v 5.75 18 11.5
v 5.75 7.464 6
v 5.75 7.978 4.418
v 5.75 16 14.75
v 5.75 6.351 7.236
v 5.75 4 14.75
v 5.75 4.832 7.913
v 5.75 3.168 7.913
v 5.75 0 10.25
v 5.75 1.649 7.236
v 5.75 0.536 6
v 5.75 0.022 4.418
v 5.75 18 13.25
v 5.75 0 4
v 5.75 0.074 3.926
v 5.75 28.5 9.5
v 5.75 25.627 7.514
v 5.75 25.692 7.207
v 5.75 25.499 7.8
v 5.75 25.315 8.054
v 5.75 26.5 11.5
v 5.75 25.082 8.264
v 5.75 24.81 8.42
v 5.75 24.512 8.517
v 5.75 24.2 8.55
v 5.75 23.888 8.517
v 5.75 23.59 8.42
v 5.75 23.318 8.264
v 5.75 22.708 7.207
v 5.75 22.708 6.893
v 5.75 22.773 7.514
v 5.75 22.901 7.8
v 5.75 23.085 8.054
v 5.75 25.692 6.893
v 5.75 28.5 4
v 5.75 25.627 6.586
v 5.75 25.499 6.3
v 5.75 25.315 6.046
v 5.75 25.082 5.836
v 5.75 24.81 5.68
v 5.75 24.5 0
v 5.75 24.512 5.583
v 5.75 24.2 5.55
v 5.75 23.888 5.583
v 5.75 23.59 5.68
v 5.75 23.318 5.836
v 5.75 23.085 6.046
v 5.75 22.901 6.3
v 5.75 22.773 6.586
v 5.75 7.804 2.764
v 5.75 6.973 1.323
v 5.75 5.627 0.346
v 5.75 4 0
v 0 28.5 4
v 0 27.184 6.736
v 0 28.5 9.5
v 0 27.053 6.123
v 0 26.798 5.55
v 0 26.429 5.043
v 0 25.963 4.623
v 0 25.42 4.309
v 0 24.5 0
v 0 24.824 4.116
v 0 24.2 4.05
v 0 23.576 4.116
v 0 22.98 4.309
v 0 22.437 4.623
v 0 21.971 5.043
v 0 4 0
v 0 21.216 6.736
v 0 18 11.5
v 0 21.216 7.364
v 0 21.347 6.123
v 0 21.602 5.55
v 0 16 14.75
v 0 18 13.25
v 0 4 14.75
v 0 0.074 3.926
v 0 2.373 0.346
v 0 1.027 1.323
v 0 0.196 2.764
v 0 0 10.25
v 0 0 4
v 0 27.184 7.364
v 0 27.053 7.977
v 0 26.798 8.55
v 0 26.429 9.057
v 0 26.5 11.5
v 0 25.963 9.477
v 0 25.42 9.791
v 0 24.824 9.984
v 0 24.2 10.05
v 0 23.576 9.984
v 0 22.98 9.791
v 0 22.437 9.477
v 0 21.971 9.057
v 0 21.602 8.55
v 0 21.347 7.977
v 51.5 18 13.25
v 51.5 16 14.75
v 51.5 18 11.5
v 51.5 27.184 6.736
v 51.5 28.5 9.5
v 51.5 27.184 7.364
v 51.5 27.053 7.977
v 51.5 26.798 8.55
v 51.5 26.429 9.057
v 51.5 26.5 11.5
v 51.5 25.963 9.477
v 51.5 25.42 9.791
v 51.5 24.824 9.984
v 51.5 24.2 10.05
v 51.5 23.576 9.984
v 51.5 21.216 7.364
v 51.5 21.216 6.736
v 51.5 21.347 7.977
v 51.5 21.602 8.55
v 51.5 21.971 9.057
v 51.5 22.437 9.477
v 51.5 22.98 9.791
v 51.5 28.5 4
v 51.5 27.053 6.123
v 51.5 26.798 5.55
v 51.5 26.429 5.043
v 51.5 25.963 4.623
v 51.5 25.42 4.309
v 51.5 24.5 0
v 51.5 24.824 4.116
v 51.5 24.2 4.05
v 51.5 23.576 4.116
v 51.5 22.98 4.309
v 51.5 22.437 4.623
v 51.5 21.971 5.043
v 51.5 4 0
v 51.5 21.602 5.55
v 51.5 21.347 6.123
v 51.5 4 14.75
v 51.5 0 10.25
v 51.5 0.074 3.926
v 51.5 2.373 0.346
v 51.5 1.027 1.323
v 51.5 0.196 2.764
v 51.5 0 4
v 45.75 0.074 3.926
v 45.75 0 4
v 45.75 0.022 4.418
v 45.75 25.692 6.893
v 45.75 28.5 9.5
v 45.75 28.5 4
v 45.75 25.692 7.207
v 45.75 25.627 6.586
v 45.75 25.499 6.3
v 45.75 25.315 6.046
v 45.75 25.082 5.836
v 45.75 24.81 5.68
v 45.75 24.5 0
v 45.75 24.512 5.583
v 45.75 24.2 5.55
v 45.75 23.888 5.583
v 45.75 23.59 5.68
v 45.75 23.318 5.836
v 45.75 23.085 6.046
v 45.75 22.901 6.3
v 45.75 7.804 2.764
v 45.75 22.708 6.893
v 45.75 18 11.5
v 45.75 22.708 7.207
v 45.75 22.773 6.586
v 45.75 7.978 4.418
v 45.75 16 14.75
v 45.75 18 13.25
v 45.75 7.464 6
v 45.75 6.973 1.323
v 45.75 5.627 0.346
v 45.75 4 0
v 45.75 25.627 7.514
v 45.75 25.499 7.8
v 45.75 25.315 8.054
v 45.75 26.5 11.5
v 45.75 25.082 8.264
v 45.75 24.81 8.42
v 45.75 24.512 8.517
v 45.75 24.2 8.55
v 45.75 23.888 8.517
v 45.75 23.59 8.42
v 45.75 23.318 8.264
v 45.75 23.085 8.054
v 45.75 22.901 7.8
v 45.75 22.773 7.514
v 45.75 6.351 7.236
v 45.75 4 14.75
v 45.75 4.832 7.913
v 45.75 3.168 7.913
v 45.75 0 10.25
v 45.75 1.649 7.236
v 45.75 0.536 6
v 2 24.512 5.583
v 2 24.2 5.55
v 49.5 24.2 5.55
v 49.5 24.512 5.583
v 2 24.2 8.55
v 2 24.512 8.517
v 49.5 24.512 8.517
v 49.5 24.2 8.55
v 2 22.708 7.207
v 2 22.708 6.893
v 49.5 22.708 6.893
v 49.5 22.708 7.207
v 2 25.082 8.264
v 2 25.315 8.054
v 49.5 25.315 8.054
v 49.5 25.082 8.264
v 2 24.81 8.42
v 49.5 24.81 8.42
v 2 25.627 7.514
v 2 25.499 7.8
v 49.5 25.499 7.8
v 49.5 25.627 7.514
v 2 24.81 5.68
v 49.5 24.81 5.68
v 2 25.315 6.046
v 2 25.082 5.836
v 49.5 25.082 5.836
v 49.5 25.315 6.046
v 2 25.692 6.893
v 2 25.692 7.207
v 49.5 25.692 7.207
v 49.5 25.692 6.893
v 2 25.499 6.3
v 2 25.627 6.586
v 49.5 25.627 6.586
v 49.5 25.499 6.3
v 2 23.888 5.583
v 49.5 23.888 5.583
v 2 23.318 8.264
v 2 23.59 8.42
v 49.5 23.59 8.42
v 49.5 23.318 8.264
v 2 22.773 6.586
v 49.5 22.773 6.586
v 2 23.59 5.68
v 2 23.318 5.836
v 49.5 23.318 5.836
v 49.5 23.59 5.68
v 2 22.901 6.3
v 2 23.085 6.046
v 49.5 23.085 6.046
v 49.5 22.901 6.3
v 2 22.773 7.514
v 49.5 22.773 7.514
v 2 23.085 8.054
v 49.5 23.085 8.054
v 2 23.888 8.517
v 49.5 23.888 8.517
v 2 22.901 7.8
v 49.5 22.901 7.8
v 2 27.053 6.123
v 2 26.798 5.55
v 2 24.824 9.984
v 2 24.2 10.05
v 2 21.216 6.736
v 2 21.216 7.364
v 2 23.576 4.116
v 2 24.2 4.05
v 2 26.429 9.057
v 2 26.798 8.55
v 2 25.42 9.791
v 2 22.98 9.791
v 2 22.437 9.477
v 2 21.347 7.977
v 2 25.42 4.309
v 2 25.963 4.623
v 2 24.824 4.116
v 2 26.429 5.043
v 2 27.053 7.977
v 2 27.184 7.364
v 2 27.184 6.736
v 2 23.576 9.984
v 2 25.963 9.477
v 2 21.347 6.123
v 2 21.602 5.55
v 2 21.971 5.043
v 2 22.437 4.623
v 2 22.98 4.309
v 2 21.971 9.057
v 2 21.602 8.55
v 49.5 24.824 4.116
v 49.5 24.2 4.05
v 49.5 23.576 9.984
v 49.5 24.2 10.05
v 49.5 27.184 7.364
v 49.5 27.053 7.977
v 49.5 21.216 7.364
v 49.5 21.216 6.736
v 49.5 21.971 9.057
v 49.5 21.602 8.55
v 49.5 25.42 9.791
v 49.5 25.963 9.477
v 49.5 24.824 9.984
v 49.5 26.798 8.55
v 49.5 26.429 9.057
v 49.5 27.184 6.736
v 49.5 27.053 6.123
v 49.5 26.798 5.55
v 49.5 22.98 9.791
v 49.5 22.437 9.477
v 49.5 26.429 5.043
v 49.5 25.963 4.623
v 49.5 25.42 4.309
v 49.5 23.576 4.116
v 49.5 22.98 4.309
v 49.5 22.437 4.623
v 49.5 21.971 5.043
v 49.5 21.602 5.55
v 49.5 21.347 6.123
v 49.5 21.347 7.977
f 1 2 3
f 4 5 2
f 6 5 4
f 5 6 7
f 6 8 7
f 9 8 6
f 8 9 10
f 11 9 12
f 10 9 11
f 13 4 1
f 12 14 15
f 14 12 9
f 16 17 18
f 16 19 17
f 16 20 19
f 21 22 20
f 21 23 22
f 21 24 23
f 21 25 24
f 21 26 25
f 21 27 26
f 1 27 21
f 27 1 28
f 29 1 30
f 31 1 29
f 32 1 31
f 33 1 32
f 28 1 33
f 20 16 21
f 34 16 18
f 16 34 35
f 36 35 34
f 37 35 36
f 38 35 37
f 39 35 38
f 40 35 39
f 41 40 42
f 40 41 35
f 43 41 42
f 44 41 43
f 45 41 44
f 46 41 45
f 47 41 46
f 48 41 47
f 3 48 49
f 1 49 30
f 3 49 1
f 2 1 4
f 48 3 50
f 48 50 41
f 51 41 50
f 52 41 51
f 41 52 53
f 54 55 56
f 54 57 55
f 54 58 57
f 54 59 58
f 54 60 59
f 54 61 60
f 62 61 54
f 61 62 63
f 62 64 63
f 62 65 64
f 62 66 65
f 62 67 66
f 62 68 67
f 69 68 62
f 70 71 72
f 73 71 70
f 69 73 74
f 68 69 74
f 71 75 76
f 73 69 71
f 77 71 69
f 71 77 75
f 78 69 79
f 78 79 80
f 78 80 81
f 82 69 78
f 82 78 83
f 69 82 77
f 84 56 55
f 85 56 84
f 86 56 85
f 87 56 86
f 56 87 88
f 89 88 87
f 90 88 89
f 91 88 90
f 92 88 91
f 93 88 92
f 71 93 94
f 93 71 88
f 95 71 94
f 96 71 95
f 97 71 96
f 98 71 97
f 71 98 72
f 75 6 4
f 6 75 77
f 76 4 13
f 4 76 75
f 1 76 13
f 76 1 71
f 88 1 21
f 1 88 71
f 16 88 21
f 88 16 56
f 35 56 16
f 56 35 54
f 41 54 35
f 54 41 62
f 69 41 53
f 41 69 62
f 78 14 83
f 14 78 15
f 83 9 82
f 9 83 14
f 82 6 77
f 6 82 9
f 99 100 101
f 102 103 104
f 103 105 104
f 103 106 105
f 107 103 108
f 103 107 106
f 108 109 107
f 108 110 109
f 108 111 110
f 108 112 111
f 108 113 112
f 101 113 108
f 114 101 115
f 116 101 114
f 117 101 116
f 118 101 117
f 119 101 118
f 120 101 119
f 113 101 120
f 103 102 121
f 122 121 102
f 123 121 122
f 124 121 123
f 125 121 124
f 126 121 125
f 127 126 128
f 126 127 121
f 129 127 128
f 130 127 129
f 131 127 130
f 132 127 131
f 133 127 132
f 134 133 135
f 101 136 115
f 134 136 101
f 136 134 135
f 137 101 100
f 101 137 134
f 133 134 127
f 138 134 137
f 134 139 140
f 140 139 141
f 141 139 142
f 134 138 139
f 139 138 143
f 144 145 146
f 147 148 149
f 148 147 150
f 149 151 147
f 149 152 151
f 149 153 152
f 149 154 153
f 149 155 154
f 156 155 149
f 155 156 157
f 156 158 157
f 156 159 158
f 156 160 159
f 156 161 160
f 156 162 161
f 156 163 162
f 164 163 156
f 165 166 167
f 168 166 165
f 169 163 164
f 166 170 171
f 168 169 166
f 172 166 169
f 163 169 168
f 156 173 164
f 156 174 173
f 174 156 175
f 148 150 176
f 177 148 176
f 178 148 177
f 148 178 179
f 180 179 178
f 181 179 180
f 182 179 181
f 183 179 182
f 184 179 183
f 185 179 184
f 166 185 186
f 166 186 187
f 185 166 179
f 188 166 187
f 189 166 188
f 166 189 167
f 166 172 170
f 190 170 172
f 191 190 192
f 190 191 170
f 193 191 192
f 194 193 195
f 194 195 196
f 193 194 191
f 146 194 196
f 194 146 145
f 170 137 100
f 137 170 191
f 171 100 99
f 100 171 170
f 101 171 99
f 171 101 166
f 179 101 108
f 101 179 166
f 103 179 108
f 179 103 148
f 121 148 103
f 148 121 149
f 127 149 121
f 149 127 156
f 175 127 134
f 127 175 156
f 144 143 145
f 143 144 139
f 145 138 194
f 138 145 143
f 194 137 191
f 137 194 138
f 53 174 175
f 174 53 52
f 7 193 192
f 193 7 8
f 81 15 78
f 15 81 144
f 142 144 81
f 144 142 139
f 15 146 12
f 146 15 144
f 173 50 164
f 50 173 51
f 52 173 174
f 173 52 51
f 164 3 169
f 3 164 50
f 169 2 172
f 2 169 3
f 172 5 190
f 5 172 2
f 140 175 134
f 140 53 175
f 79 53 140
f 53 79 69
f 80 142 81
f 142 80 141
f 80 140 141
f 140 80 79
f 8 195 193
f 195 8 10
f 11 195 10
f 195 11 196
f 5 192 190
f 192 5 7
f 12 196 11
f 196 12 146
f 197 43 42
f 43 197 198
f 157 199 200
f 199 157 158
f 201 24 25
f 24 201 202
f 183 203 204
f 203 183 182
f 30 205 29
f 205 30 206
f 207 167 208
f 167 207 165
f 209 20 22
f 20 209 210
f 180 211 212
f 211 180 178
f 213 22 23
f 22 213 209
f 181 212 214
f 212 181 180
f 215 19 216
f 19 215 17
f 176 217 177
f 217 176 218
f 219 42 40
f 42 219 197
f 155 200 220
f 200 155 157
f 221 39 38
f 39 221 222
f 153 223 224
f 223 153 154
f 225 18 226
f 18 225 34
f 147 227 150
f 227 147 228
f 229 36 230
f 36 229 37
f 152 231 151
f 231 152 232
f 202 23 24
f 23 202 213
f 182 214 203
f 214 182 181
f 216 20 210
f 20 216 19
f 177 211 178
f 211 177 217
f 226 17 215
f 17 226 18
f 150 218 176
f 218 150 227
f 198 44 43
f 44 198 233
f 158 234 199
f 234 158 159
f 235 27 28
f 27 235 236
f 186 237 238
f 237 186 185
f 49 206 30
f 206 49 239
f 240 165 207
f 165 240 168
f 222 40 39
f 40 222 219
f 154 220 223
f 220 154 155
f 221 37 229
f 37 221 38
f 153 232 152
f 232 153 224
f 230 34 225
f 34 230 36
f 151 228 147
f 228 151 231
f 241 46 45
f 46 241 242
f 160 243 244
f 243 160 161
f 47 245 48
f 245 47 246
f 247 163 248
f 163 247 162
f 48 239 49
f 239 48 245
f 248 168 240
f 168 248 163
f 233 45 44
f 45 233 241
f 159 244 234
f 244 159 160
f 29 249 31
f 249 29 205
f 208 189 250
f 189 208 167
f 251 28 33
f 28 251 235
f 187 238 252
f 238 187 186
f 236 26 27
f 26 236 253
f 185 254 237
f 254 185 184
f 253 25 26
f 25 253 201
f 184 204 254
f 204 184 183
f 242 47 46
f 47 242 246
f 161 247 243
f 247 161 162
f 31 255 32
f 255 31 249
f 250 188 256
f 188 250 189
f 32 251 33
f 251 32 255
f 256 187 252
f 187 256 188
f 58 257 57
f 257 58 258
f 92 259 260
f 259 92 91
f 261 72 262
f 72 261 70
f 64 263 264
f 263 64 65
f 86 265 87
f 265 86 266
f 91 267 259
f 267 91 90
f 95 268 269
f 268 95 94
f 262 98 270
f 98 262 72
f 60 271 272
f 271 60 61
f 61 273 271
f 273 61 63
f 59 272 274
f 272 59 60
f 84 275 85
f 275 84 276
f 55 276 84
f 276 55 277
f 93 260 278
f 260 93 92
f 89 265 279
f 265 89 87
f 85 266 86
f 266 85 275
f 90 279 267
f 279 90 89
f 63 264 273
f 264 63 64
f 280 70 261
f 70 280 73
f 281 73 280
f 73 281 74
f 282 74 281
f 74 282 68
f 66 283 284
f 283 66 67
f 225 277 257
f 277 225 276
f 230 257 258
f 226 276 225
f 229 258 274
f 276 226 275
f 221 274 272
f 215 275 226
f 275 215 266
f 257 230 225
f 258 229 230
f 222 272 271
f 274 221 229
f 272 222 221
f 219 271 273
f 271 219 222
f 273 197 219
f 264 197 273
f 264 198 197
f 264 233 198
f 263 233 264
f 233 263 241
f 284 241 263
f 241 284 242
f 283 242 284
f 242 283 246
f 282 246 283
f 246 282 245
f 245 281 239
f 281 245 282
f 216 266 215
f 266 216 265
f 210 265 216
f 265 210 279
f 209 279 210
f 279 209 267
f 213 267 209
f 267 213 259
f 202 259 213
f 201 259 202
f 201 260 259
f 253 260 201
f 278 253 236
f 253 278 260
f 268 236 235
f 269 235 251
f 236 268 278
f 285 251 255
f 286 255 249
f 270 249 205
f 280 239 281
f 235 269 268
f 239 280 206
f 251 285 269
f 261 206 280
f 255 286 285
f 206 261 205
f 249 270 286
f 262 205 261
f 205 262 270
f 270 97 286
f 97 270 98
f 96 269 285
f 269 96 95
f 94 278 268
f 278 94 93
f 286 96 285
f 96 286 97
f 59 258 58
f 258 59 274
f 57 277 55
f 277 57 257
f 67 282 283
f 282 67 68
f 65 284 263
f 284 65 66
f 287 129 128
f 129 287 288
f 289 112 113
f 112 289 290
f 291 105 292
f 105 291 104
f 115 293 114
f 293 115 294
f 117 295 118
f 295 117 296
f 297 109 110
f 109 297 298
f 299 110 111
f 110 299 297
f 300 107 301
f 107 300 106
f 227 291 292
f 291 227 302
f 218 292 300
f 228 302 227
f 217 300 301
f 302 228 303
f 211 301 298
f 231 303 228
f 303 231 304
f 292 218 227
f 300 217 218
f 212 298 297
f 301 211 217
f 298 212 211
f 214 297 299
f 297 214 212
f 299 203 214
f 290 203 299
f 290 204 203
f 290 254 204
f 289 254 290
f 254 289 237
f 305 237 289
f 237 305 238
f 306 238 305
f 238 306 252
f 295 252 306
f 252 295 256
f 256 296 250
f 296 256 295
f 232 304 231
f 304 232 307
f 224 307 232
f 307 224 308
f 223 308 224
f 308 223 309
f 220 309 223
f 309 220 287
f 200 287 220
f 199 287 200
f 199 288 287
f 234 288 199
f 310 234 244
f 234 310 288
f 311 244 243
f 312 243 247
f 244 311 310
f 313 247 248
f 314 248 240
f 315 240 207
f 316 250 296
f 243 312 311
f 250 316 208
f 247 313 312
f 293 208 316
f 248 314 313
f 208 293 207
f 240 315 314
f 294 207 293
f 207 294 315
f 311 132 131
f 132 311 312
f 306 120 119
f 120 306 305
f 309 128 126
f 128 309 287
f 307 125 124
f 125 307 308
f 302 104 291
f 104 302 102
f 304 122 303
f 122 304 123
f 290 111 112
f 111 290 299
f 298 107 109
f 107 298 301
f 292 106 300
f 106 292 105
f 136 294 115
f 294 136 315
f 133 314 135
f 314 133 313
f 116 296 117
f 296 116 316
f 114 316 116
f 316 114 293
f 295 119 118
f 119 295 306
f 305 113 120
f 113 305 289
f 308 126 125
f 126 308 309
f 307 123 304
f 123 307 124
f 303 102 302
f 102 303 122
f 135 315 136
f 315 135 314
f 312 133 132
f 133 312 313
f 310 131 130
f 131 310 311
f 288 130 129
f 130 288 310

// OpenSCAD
module draw_side() {
    translate([5.75, 0, 0])
    rotate([0, -90, 0])
    linear_extrude(5.75) {
        polygon([
            [4,0],
            [10.25, 0],
            [14.75, 4],
            [14.75, 16],
            [13.25, 18],
            [11.5, 18],
            [11.5, 26.5],
            [9.5, 28.5],
            [4, 28.5],
            [0, 24.5],
            [0, 4]
        ]);
    }
}

difference() {
    union() {
        draw_side();

        translate([45.75, 0, 0])
        draw_side();

        translate([0, 4, 4])
        rotate([0, 90, 0])
        cylinder(h=40 + 5.75*2, r=4, $fn=15, center=false);
    }
    
    translate([-.5, 24.2, 7.05])
    rotate([0, 90, 0])
    cylinder(h=40 + 5.75*2 + 1, r=1.5, $fn=30, center=false);
        
    translate([-1, 24.2, 7.05])
    rotate([0, 90, 0])
    cylinder(h=3, r=3, $fn=30, center=false);
        
    translate([40 + 5.75*2 - 2, 24.2, 7.05])
    rotate([0, 90, 0])
    cylinder(h=3, r=3, $fn=30, center=false);
}
